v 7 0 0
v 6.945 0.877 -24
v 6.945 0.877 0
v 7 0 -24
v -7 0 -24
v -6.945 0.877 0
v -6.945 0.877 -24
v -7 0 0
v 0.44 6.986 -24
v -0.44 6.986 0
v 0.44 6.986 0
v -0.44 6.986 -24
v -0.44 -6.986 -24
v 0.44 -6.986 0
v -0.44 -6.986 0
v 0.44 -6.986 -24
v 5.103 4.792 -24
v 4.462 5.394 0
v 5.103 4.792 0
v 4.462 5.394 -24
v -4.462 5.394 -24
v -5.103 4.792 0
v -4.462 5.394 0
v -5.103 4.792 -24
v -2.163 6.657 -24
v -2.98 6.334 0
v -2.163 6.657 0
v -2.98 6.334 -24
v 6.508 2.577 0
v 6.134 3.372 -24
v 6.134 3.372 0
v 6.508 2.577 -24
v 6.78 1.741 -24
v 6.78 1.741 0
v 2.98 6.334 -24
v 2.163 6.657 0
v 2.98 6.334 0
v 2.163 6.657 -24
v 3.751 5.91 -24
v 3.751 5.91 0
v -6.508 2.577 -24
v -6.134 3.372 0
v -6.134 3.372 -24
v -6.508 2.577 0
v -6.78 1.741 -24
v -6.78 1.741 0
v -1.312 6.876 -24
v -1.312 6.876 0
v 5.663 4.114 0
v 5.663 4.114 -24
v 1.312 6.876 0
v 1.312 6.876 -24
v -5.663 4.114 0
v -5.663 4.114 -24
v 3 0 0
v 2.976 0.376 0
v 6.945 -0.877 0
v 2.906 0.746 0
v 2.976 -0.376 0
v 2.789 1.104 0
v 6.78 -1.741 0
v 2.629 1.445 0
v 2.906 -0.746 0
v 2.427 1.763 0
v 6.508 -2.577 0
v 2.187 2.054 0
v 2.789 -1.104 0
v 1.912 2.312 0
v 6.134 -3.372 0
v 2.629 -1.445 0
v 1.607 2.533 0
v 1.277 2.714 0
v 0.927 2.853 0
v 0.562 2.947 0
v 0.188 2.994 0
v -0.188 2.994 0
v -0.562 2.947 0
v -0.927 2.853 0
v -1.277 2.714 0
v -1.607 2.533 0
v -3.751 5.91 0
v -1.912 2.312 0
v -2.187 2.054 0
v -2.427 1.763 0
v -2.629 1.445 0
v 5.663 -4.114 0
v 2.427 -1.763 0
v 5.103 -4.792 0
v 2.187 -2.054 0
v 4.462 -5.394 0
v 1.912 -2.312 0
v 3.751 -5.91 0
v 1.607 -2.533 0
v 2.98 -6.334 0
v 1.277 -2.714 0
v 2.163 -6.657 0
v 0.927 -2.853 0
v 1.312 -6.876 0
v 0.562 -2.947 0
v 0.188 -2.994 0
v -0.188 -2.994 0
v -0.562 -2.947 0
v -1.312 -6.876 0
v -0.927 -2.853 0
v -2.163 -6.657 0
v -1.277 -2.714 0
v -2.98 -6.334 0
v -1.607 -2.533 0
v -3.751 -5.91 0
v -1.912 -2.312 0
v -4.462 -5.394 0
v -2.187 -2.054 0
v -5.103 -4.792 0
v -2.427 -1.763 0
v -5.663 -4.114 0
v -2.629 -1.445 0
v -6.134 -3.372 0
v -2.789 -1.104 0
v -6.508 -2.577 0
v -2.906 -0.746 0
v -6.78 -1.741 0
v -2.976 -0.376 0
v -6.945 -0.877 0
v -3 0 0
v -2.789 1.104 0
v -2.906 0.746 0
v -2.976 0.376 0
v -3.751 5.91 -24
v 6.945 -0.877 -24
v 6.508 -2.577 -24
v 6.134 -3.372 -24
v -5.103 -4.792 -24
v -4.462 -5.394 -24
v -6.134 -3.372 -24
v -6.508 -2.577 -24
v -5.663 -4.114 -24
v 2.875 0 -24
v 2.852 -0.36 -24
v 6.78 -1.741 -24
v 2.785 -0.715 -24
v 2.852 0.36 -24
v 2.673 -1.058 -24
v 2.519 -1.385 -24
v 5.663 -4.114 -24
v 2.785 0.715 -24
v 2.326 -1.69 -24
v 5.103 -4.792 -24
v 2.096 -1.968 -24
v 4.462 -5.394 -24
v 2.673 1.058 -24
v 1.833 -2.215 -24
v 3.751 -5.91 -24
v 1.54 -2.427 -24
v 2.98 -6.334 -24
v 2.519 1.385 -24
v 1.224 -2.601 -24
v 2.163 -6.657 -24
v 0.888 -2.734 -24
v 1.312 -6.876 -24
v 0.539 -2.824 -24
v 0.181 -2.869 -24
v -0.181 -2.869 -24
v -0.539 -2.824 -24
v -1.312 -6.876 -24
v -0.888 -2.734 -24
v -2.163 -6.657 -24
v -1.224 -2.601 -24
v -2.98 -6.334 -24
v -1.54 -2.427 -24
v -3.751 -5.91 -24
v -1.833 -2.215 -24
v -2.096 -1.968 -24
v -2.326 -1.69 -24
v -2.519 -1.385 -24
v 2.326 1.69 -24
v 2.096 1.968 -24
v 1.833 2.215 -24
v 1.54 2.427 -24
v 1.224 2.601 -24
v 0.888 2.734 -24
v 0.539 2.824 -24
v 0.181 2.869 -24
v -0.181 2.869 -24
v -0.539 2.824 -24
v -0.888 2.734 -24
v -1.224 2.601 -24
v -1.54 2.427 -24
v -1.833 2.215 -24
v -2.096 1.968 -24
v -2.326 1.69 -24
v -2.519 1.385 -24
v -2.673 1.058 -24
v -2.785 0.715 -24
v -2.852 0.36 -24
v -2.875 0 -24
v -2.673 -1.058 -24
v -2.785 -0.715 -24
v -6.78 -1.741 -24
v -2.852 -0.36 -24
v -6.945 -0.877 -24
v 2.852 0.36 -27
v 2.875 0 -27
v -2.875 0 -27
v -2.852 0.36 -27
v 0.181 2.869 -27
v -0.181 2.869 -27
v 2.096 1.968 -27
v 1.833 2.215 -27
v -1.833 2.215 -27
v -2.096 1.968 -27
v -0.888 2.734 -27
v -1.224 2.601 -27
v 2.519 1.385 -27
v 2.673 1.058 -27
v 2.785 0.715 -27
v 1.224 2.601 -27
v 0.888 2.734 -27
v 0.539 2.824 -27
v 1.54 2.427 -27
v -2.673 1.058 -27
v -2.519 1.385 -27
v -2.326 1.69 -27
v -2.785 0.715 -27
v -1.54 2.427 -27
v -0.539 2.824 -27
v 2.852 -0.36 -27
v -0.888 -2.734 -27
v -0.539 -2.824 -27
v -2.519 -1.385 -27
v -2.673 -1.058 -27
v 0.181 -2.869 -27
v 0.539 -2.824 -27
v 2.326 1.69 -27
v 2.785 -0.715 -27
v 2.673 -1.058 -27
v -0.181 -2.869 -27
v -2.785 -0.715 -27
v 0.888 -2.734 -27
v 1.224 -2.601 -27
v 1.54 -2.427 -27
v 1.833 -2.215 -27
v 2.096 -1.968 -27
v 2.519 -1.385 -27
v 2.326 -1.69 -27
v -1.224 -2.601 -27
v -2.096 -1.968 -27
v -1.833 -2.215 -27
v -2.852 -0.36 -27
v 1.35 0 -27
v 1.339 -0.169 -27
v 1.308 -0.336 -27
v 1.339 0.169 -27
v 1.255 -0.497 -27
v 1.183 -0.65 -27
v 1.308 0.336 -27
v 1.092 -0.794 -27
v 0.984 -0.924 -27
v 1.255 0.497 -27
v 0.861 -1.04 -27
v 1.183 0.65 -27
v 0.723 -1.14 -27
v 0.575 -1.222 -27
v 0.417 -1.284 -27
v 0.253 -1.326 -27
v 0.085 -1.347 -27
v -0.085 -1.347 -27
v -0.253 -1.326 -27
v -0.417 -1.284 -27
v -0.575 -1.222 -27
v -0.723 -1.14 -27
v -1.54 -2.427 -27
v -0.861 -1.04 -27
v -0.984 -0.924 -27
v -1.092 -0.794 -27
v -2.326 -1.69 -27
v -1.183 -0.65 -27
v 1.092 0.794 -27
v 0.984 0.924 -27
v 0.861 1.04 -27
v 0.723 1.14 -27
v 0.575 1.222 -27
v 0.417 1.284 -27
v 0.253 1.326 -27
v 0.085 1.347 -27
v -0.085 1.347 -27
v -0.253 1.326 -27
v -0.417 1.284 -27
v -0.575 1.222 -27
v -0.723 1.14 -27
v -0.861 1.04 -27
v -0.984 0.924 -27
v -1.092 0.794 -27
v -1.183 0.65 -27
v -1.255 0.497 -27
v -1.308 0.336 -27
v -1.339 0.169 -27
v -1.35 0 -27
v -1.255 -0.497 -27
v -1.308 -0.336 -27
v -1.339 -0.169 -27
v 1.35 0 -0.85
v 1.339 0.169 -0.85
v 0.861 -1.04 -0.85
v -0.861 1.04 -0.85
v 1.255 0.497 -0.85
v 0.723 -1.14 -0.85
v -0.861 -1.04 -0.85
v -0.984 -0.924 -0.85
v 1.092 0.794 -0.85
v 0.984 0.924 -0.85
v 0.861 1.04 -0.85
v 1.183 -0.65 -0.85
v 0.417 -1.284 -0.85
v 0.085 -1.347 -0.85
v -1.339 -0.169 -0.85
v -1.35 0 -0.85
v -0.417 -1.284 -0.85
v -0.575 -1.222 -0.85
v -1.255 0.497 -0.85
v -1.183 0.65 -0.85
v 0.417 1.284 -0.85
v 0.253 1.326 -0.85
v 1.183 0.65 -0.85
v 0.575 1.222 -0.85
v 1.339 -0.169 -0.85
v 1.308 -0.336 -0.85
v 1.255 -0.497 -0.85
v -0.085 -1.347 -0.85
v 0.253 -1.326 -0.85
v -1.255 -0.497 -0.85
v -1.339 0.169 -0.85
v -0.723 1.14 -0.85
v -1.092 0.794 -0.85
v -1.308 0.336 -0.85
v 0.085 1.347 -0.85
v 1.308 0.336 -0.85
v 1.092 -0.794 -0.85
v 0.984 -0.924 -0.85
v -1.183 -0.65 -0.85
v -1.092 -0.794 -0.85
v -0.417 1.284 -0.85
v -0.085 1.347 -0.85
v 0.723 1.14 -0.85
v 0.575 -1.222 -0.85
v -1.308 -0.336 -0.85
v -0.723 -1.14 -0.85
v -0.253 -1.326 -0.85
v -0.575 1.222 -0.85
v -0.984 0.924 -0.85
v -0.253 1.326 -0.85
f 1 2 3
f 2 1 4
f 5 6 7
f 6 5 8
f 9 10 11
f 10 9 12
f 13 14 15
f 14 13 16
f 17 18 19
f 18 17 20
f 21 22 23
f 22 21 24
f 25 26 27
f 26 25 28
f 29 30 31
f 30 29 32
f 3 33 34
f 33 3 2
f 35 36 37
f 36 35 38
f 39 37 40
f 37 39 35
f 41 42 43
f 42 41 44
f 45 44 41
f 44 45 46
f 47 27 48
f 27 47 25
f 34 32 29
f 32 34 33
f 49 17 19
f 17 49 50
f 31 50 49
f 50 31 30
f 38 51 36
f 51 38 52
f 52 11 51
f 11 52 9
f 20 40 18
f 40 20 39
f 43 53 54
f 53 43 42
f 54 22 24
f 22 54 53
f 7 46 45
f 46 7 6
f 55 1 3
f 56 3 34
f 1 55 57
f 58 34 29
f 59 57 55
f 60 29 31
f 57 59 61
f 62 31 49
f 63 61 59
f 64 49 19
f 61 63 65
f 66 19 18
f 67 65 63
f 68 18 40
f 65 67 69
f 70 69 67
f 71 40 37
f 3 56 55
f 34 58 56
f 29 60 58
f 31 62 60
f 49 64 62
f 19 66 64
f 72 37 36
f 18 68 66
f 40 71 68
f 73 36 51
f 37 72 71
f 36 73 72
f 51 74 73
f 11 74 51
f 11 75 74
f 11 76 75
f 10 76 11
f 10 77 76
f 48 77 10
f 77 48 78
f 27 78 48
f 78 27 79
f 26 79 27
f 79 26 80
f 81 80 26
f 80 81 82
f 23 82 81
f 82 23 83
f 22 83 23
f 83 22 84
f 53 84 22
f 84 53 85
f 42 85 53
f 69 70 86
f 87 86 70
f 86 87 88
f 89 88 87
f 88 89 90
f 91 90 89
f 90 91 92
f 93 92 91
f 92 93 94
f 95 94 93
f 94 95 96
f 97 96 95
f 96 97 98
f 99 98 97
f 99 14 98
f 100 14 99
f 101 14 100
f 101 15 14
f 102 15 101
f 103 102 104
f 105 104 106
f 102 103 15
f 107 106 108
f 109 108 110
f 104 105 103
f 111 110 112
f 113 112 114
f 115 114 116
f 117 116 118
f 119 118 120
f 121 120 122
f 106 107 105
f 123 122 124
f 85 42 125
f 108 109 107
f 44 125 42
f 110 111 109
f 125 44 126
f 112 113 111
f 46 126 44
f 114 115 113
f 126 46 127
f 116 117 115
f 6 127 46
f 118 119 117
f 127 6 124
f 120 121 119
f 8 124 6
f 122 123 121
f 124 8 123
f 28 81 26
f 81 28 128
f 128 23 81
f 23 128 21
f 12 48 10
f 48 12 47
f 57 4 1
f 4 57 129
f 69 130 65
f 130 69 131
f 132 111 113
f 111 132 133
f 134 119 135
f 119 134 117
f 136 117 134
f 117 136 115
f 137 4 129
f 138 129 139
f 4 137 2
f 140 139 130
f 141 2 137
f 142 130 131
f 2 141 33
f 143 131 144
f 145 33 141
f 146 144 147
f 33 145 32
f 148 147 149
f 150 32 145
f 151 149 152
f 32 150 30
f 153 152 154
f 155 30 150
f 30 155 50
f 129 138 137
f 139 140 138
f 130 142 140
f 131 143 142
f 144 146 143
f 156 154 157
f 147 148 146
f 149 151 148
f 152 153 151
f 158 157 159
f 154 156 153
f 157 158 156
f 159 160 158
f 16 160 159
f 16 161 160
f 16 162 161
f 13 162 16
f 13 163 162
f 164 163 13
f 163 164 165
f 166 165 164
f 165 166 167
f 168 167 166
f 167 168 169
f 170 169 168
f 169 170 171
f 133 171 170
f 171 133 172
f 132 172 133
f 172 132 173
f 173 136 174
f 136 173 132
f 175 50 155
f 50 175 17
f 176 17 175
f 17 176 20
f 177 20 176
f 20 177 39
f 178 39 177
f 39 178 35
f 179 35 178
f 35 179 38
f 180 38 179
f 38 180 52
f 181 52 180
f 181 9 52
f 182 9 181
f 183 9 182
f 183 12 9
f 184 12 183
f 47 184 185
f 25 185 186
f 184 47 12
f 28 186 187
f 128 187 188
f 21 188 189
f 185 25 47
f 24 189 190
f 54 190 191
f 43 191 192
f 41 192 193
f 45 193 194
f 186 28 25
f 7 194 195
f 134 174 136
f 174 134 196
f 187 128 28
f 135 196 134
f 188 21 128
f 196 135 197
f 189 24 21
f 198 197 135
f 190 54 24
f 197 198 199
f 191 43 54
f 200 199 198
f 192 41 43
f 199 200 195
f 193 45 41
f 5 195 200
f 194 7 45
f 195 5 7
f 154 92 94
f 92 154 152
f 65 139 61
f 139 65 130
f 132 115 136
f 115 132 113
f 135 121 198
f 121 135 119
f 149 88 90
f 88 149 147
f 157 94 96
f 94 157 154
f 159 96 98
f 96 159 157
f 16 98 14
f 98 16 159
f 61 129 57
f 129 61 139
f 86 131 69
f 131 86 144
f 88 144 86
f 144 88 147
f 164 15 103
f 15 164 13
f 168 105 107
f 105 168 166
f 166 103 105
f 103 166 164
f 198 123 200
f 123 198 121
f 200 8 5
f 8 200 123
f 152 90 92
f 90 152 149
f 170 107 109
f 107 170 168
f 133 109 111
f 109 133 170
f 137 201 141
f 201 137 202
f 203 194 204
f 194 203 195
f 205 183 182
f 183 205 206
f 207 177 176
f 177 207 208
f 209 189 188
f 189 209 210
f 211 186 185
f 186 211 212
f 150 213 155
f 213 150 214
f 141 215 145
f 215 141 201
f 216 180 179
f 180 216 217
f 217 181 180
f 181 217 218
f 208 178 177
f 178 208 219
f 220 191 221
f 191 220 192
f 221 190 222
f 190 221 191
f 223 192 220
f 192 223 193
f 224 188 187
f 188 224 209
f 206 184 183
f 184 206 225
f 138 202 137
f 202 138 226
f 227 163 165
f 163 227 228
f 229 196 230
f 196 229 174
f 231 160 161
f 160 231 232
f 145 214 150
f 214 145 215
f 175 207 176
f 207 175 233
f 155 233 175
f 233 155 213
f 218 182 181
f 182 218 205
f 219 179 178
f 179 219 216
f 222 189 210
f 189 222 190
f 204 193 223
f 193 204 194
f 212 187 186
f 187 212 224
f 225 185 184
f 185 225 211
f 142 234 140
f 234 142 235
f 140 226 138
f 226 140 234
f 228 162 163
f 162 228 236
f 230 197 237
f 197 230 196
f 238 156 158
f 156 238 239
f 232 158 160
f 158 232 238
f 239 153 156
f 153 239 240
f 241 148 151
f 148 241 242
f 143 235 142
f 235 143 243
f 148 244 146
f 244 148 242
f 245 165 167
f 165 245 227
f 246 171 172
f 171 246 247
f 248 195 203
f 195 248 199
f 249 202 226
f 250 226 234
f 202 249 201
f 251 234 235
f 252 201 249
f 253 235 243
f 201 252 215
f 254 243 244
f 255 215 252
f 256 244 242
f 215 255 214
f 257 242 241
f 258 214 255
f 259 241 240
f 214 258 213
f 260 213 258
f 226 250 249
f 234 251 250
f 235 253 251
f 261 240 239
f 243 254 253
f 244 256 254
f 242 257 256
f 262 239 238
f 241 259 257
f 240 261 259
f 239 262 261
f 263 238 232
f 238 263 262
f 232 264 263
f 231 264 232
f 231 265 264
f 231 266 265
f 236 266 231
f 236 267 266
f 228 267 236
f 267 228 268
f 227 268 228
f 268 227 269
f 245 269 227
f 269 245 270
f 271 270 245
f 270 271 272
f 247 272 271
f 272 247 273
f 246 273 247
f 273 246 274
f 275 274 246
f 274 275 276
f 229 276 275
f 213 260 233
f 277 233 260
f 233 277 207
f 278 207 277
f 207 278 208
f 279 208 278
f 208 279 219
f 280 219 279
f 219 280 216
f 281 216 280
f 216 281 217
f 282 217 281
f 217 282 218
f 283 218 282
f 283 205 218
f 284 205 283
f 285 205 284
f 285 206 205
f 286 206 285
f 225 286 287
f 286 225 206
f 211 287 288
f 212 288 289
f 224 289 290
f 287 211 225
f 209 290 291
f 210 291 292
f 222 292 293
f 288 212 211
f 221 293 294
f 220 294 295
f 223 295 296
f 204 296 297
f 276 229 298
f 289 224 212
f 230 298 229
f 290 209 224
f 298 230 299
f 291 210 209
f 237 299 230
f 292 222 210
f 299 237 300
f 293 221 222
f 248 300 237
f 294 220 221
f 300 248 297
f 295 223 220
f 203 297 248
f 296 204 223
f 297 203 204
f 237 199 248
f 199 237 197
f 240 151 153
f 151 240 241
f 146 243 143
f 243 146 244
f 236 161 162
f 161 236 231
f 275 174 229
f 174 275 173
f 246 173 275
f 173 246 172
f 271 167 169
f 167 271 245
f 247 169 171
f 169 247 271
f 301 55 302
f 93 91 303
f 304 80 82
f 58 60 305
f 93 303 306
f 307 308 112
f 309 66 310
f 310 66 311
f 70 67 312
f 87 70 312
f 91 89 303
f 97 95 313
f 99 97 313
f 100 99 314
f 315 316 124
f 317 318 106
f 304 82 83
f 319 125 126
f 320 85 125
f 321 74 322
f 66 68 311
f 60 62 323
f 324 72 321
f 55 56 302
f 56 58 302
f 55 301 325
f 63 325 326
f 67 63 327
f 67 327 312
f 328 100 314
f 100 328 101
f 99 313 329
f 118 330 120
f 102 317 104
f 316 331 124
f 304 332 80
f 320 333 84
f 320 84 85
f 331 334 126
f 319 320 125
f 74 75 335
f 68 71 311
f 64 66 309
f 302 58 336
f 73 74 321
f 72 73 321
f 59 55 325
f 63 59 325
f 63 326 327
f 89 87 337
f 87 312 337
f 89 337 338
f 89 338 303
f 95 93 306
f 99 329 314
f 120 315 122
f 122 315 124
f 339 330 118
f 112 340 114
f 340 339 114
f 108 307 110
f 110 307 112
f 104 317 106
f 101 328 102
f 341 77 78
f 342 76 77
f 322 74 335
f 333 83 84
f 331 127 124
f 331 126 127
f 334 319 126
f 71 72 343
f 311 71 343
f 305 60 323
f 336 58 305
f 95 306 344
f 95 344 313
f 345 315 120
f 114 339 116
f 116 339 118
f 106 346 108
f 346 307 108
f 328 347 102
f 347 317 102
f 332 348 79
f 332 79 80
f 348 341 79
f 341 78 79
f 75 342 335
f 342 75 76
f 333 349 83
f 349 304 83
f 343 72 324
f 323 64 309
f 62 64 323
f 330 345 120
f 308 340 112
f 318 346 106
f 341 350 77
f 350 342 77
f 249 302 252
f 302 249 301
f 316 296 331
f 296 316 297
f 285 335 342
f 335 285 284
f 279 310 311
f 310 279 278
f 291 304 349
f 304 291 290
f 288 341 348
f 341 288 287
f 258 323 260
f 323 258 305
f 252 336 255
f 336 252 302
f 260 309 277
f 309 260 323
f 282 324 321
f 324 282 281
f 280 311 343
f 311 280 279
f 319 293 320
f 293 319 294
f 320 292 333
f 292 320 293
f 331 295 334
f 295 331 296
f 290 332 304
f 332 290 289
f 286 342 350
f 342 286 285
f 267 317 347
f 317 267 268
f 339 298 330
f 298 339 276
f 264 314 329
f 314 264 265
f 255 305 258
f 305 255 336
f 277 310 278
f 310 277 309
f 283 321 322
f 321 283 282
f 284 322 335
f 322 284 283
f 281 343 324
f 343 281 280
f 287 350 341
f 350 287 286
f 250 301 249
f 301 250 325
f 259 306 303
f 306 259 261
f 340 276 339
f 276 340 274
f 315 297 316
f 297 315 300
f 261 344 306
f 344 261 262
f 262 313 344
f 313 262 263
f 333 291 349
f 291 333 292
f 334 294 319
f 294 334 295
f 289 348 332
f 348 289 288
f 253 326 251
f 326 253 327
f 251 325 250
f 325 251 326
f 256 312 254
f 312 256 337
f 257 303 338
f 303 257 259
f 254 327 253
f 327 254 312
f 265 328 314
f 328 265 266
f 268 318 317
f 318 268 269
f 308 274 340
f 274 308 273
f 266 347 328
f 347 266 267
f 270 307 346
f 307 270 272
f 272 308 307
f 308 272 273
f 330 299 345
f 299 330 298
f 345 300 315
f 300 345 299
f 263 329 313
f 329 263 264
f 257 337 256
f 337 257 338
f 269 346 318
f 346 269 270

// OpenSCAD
$fn = 50;

difference() {
	union() {
		translate(v = [0, 0, -24.0]) {
			cylinder(h = 24, r = 7.0);
		}
		#translate(v = [0, 0, -27.0]) {
			cylinder(h = 27, r = 2.875);
		}
	}
	union() {
		translate(v = [0, 0, 0]) {
			rotate(a = [0, 0, 0]) {
				difference() {
					union() {
						translate(v = [0, 0, -27.0]) {
							cylinder(h = 27, r = 1.0);
						}
						translate(v = [0, 0, -0.85]) {
							cylinder(h = 0.85, r1 = 1.35, r2 = 3.0);
						}
						translate(v = [0, 0, -27.0]) {
							cylinder(h = 27, r = 1.35);
						}
						translate(v = [0, 0, -27.0]) {
							cylinder(h = 27, r = 1.0);
						}
					}
					union();
				}
			}
		}
	}
}
